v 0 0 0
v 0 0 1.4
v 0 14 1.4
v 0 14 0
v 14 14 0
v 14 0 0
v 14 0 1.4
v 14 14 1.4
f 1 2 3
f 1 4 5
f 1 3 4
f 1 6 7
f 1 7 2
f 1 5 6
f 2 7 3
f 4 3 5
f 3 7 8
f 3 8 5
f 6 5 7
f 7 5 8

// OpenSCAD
/* Warning, this is a very basic generator with a lot of approximation 
input data : [LQFP, J5X, 14x14x1.4mm, 128, , B, C04-00058B]
generated by com.zoubworld.electronics.cad.model3d.Basic
Date : Sun Feb 15 10:50:48 CET 2026
*/

//body
color("black")
translate([0,0,0])
cube([14.0,14.0,1.4], center=false);
